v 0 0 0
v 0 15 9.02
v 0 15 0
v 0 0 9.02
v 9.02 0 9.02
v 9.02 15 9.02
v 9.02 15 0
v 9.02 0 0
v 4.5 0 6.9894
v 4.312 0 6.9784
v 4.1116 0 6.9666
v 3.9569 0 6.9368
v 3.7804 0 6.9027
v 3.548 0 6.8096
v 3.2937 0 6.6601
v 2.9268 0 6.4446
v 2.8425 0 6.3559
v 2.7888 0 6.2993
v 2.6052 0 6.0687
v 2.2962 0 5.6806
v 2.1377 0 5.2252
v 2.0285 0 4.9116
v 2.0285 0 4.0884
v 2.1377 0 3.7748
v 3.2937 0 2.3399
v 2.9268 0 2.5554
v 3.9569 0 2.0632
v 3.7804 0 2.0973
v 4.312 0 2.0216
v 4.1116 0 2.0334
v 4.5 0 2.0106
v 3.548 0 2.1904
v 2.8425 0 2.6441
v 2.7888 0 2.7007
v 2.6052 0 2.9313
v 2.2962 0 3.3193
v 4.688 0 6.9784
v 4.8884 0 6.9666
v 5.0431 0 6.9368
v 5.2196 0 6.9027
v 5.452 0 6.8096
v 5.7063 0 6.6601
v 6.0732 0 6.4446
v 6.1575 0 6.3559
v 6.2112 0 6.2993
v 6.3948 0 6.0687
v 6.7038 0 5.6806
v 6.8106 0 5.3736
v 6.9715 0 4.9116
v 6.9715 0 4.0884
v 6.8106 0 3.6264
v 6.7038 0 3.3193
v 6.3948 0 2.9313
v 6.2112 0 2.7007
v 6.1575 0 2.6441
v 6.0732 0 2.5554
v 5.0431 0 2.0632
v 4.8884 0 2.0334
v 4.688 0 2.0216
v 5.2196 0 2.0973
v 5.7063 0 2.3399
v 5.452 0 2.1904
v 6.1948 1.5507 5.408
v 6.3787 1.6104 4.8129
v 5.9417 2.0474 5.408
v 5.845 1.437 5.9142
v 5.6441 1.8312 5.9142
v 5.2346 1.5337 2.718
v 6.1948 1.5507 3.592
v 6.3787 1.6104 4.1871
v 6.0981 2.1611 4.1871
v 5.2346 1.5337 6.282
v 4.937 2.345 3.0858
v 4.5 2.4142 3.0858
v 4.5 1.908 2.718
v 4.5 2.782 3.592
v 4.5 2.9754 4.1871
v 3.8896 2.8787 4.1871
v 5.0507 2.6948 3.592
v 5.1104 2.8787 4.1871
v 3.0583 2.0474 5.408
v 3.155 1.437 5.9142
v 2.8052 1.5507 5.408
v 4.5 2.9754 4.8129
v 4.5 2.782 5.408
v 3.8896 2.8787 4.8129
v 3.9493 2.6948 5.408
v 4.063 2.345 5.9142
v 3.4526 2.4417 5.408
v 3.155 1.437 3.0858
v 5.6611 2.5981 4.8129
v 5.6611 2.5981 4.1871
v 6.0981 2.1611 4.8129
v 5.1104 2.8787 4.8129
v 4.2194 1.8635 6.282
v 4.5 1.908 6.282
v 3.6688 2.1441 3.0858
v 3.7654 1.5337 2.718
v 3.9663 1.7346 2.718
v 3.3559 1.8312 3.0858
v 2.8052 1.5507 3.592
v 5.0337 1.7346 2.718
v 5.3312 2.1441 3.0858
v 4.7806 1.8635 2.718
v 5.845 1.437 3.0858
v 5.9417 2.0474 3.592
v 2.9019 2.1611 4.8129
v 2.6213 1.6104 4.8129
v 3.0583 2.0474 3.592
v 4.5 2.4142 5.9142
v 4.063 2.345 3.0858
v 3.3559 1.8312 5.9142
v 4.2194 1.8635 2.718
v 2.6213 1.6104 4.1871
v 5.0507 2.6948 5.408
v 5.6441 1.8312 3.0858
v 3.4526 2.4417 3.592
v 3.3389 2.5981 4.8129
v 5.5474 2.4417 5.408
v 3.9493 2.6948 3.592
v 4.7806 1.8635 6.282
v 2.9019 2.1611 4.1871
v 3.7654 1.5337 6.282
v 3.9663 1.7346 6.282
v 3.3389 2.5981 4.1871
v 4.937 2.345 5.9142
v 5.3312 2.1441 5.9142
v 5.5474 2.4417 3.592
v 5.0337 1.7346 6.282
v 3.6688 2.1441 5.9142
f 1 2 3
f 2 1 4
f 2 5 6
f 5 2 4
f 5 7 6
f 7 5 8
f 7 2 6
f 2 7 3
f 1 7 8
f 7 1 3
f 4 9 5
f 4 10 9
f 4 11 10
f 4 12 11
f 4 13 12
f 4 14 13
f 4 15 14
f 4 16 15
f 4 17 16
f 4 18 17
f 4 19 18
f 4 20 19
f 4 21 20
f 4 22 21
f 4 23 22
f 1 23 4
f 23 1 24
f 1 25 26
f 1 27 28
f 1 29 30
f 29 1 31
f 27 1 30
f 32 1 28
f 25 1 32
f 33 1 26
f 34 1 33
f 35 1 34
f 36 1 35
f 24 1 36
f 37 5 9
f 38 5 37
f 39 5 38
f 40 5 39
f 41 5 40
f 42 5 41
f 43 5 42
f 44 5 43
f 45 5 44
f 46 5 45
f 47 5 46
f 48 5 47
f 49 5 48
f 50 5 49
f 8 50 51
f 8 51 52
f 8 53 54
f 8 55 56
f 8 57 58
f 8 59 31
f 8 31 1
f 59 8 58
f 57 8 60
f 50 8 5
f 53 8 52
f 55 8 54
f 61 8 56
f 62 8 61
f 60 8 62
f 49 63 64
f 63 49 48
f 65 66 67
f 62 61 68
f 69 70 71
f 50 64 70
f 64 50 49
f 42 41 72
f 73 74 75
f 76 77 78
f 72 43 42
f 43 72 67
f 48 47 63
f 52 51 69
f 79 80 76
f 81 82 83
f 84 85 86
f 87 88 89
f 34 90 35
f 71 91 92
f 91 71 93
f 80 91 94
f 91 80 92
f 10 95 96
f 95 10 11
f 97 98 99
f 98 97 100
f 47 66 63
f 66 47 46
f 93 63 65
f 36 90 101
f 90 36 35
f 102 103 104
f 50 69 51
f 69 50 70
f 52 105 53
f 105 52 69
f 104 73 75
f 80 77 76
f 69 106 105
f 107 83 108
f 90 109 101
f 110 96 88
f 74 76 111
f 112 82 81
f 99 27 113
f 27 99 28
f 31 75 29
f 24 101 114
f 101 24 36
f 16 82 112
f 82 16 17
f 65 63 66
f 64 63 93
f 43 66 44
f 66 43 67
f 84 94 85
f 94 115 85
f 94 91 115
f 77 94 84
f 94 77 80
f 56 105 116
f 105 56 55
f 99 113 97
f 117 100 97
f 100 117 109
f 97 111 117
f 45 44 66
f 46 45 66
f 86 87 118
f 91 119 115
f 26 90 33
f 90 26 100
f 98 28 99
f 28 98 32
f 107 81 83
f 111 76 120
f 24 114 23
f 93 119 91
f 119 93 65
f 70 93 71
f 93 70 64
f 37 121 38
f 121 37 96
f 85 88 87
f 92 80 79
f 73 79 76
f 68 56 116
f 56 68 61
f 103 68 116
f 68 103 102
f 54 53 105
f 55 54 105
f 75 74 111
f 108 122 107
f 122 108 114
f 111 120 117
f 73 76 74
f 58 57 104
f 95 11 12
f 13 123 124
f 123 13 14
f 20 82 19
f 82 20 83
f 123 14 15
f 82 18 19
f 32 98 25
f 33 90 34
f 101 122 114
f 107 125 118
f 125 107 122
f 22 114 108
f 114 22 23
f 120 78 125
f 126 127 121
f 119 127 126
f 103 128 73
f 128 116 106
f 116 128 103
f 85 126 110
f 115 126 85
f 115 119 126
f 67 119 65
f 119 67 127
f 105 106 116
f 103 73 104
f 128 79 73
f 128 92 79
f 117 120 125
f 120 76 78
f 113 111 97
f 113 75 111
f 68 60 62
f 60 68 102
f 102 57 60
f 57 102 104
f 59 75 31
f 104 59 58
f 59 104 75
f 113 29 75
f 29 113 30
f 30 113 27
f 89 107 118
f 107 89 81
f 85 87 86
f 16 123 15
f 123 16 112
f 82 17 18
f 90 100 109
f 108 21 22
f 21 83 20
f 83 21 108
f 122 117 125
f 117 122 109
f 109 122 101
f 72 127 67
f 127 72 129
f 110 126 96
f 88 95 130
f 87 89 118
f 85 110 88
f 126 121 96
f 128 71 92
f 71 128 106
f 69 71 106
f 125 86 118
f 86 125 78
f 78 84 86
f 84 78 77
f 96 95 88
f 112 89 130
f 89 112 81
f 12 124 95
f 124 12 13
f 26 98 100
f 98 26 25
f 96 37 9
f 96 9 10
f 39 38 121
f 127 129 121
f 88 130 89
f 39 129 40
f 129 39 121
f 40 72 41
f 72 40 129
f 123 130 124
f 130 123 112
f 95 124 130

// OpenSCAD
d = 0.0;
//d ranges from 0 to 10;
$fn     = 20;
fiddle  = 0.01;
spacing = 9.0;

difference() {
    // block
    cube([ spacing+fiddle*2, 15, spacing+fiddle*2 ]);
    // well
    translate( [0,-7,0] ){
        translate( [ spacing/2, 0, spacing/2] ) {
            hull() {
                sphere( 4.8 );
                translate( [ 0, 8+d, 0] ) sphere( 2 );
            }
        }
    }
}
